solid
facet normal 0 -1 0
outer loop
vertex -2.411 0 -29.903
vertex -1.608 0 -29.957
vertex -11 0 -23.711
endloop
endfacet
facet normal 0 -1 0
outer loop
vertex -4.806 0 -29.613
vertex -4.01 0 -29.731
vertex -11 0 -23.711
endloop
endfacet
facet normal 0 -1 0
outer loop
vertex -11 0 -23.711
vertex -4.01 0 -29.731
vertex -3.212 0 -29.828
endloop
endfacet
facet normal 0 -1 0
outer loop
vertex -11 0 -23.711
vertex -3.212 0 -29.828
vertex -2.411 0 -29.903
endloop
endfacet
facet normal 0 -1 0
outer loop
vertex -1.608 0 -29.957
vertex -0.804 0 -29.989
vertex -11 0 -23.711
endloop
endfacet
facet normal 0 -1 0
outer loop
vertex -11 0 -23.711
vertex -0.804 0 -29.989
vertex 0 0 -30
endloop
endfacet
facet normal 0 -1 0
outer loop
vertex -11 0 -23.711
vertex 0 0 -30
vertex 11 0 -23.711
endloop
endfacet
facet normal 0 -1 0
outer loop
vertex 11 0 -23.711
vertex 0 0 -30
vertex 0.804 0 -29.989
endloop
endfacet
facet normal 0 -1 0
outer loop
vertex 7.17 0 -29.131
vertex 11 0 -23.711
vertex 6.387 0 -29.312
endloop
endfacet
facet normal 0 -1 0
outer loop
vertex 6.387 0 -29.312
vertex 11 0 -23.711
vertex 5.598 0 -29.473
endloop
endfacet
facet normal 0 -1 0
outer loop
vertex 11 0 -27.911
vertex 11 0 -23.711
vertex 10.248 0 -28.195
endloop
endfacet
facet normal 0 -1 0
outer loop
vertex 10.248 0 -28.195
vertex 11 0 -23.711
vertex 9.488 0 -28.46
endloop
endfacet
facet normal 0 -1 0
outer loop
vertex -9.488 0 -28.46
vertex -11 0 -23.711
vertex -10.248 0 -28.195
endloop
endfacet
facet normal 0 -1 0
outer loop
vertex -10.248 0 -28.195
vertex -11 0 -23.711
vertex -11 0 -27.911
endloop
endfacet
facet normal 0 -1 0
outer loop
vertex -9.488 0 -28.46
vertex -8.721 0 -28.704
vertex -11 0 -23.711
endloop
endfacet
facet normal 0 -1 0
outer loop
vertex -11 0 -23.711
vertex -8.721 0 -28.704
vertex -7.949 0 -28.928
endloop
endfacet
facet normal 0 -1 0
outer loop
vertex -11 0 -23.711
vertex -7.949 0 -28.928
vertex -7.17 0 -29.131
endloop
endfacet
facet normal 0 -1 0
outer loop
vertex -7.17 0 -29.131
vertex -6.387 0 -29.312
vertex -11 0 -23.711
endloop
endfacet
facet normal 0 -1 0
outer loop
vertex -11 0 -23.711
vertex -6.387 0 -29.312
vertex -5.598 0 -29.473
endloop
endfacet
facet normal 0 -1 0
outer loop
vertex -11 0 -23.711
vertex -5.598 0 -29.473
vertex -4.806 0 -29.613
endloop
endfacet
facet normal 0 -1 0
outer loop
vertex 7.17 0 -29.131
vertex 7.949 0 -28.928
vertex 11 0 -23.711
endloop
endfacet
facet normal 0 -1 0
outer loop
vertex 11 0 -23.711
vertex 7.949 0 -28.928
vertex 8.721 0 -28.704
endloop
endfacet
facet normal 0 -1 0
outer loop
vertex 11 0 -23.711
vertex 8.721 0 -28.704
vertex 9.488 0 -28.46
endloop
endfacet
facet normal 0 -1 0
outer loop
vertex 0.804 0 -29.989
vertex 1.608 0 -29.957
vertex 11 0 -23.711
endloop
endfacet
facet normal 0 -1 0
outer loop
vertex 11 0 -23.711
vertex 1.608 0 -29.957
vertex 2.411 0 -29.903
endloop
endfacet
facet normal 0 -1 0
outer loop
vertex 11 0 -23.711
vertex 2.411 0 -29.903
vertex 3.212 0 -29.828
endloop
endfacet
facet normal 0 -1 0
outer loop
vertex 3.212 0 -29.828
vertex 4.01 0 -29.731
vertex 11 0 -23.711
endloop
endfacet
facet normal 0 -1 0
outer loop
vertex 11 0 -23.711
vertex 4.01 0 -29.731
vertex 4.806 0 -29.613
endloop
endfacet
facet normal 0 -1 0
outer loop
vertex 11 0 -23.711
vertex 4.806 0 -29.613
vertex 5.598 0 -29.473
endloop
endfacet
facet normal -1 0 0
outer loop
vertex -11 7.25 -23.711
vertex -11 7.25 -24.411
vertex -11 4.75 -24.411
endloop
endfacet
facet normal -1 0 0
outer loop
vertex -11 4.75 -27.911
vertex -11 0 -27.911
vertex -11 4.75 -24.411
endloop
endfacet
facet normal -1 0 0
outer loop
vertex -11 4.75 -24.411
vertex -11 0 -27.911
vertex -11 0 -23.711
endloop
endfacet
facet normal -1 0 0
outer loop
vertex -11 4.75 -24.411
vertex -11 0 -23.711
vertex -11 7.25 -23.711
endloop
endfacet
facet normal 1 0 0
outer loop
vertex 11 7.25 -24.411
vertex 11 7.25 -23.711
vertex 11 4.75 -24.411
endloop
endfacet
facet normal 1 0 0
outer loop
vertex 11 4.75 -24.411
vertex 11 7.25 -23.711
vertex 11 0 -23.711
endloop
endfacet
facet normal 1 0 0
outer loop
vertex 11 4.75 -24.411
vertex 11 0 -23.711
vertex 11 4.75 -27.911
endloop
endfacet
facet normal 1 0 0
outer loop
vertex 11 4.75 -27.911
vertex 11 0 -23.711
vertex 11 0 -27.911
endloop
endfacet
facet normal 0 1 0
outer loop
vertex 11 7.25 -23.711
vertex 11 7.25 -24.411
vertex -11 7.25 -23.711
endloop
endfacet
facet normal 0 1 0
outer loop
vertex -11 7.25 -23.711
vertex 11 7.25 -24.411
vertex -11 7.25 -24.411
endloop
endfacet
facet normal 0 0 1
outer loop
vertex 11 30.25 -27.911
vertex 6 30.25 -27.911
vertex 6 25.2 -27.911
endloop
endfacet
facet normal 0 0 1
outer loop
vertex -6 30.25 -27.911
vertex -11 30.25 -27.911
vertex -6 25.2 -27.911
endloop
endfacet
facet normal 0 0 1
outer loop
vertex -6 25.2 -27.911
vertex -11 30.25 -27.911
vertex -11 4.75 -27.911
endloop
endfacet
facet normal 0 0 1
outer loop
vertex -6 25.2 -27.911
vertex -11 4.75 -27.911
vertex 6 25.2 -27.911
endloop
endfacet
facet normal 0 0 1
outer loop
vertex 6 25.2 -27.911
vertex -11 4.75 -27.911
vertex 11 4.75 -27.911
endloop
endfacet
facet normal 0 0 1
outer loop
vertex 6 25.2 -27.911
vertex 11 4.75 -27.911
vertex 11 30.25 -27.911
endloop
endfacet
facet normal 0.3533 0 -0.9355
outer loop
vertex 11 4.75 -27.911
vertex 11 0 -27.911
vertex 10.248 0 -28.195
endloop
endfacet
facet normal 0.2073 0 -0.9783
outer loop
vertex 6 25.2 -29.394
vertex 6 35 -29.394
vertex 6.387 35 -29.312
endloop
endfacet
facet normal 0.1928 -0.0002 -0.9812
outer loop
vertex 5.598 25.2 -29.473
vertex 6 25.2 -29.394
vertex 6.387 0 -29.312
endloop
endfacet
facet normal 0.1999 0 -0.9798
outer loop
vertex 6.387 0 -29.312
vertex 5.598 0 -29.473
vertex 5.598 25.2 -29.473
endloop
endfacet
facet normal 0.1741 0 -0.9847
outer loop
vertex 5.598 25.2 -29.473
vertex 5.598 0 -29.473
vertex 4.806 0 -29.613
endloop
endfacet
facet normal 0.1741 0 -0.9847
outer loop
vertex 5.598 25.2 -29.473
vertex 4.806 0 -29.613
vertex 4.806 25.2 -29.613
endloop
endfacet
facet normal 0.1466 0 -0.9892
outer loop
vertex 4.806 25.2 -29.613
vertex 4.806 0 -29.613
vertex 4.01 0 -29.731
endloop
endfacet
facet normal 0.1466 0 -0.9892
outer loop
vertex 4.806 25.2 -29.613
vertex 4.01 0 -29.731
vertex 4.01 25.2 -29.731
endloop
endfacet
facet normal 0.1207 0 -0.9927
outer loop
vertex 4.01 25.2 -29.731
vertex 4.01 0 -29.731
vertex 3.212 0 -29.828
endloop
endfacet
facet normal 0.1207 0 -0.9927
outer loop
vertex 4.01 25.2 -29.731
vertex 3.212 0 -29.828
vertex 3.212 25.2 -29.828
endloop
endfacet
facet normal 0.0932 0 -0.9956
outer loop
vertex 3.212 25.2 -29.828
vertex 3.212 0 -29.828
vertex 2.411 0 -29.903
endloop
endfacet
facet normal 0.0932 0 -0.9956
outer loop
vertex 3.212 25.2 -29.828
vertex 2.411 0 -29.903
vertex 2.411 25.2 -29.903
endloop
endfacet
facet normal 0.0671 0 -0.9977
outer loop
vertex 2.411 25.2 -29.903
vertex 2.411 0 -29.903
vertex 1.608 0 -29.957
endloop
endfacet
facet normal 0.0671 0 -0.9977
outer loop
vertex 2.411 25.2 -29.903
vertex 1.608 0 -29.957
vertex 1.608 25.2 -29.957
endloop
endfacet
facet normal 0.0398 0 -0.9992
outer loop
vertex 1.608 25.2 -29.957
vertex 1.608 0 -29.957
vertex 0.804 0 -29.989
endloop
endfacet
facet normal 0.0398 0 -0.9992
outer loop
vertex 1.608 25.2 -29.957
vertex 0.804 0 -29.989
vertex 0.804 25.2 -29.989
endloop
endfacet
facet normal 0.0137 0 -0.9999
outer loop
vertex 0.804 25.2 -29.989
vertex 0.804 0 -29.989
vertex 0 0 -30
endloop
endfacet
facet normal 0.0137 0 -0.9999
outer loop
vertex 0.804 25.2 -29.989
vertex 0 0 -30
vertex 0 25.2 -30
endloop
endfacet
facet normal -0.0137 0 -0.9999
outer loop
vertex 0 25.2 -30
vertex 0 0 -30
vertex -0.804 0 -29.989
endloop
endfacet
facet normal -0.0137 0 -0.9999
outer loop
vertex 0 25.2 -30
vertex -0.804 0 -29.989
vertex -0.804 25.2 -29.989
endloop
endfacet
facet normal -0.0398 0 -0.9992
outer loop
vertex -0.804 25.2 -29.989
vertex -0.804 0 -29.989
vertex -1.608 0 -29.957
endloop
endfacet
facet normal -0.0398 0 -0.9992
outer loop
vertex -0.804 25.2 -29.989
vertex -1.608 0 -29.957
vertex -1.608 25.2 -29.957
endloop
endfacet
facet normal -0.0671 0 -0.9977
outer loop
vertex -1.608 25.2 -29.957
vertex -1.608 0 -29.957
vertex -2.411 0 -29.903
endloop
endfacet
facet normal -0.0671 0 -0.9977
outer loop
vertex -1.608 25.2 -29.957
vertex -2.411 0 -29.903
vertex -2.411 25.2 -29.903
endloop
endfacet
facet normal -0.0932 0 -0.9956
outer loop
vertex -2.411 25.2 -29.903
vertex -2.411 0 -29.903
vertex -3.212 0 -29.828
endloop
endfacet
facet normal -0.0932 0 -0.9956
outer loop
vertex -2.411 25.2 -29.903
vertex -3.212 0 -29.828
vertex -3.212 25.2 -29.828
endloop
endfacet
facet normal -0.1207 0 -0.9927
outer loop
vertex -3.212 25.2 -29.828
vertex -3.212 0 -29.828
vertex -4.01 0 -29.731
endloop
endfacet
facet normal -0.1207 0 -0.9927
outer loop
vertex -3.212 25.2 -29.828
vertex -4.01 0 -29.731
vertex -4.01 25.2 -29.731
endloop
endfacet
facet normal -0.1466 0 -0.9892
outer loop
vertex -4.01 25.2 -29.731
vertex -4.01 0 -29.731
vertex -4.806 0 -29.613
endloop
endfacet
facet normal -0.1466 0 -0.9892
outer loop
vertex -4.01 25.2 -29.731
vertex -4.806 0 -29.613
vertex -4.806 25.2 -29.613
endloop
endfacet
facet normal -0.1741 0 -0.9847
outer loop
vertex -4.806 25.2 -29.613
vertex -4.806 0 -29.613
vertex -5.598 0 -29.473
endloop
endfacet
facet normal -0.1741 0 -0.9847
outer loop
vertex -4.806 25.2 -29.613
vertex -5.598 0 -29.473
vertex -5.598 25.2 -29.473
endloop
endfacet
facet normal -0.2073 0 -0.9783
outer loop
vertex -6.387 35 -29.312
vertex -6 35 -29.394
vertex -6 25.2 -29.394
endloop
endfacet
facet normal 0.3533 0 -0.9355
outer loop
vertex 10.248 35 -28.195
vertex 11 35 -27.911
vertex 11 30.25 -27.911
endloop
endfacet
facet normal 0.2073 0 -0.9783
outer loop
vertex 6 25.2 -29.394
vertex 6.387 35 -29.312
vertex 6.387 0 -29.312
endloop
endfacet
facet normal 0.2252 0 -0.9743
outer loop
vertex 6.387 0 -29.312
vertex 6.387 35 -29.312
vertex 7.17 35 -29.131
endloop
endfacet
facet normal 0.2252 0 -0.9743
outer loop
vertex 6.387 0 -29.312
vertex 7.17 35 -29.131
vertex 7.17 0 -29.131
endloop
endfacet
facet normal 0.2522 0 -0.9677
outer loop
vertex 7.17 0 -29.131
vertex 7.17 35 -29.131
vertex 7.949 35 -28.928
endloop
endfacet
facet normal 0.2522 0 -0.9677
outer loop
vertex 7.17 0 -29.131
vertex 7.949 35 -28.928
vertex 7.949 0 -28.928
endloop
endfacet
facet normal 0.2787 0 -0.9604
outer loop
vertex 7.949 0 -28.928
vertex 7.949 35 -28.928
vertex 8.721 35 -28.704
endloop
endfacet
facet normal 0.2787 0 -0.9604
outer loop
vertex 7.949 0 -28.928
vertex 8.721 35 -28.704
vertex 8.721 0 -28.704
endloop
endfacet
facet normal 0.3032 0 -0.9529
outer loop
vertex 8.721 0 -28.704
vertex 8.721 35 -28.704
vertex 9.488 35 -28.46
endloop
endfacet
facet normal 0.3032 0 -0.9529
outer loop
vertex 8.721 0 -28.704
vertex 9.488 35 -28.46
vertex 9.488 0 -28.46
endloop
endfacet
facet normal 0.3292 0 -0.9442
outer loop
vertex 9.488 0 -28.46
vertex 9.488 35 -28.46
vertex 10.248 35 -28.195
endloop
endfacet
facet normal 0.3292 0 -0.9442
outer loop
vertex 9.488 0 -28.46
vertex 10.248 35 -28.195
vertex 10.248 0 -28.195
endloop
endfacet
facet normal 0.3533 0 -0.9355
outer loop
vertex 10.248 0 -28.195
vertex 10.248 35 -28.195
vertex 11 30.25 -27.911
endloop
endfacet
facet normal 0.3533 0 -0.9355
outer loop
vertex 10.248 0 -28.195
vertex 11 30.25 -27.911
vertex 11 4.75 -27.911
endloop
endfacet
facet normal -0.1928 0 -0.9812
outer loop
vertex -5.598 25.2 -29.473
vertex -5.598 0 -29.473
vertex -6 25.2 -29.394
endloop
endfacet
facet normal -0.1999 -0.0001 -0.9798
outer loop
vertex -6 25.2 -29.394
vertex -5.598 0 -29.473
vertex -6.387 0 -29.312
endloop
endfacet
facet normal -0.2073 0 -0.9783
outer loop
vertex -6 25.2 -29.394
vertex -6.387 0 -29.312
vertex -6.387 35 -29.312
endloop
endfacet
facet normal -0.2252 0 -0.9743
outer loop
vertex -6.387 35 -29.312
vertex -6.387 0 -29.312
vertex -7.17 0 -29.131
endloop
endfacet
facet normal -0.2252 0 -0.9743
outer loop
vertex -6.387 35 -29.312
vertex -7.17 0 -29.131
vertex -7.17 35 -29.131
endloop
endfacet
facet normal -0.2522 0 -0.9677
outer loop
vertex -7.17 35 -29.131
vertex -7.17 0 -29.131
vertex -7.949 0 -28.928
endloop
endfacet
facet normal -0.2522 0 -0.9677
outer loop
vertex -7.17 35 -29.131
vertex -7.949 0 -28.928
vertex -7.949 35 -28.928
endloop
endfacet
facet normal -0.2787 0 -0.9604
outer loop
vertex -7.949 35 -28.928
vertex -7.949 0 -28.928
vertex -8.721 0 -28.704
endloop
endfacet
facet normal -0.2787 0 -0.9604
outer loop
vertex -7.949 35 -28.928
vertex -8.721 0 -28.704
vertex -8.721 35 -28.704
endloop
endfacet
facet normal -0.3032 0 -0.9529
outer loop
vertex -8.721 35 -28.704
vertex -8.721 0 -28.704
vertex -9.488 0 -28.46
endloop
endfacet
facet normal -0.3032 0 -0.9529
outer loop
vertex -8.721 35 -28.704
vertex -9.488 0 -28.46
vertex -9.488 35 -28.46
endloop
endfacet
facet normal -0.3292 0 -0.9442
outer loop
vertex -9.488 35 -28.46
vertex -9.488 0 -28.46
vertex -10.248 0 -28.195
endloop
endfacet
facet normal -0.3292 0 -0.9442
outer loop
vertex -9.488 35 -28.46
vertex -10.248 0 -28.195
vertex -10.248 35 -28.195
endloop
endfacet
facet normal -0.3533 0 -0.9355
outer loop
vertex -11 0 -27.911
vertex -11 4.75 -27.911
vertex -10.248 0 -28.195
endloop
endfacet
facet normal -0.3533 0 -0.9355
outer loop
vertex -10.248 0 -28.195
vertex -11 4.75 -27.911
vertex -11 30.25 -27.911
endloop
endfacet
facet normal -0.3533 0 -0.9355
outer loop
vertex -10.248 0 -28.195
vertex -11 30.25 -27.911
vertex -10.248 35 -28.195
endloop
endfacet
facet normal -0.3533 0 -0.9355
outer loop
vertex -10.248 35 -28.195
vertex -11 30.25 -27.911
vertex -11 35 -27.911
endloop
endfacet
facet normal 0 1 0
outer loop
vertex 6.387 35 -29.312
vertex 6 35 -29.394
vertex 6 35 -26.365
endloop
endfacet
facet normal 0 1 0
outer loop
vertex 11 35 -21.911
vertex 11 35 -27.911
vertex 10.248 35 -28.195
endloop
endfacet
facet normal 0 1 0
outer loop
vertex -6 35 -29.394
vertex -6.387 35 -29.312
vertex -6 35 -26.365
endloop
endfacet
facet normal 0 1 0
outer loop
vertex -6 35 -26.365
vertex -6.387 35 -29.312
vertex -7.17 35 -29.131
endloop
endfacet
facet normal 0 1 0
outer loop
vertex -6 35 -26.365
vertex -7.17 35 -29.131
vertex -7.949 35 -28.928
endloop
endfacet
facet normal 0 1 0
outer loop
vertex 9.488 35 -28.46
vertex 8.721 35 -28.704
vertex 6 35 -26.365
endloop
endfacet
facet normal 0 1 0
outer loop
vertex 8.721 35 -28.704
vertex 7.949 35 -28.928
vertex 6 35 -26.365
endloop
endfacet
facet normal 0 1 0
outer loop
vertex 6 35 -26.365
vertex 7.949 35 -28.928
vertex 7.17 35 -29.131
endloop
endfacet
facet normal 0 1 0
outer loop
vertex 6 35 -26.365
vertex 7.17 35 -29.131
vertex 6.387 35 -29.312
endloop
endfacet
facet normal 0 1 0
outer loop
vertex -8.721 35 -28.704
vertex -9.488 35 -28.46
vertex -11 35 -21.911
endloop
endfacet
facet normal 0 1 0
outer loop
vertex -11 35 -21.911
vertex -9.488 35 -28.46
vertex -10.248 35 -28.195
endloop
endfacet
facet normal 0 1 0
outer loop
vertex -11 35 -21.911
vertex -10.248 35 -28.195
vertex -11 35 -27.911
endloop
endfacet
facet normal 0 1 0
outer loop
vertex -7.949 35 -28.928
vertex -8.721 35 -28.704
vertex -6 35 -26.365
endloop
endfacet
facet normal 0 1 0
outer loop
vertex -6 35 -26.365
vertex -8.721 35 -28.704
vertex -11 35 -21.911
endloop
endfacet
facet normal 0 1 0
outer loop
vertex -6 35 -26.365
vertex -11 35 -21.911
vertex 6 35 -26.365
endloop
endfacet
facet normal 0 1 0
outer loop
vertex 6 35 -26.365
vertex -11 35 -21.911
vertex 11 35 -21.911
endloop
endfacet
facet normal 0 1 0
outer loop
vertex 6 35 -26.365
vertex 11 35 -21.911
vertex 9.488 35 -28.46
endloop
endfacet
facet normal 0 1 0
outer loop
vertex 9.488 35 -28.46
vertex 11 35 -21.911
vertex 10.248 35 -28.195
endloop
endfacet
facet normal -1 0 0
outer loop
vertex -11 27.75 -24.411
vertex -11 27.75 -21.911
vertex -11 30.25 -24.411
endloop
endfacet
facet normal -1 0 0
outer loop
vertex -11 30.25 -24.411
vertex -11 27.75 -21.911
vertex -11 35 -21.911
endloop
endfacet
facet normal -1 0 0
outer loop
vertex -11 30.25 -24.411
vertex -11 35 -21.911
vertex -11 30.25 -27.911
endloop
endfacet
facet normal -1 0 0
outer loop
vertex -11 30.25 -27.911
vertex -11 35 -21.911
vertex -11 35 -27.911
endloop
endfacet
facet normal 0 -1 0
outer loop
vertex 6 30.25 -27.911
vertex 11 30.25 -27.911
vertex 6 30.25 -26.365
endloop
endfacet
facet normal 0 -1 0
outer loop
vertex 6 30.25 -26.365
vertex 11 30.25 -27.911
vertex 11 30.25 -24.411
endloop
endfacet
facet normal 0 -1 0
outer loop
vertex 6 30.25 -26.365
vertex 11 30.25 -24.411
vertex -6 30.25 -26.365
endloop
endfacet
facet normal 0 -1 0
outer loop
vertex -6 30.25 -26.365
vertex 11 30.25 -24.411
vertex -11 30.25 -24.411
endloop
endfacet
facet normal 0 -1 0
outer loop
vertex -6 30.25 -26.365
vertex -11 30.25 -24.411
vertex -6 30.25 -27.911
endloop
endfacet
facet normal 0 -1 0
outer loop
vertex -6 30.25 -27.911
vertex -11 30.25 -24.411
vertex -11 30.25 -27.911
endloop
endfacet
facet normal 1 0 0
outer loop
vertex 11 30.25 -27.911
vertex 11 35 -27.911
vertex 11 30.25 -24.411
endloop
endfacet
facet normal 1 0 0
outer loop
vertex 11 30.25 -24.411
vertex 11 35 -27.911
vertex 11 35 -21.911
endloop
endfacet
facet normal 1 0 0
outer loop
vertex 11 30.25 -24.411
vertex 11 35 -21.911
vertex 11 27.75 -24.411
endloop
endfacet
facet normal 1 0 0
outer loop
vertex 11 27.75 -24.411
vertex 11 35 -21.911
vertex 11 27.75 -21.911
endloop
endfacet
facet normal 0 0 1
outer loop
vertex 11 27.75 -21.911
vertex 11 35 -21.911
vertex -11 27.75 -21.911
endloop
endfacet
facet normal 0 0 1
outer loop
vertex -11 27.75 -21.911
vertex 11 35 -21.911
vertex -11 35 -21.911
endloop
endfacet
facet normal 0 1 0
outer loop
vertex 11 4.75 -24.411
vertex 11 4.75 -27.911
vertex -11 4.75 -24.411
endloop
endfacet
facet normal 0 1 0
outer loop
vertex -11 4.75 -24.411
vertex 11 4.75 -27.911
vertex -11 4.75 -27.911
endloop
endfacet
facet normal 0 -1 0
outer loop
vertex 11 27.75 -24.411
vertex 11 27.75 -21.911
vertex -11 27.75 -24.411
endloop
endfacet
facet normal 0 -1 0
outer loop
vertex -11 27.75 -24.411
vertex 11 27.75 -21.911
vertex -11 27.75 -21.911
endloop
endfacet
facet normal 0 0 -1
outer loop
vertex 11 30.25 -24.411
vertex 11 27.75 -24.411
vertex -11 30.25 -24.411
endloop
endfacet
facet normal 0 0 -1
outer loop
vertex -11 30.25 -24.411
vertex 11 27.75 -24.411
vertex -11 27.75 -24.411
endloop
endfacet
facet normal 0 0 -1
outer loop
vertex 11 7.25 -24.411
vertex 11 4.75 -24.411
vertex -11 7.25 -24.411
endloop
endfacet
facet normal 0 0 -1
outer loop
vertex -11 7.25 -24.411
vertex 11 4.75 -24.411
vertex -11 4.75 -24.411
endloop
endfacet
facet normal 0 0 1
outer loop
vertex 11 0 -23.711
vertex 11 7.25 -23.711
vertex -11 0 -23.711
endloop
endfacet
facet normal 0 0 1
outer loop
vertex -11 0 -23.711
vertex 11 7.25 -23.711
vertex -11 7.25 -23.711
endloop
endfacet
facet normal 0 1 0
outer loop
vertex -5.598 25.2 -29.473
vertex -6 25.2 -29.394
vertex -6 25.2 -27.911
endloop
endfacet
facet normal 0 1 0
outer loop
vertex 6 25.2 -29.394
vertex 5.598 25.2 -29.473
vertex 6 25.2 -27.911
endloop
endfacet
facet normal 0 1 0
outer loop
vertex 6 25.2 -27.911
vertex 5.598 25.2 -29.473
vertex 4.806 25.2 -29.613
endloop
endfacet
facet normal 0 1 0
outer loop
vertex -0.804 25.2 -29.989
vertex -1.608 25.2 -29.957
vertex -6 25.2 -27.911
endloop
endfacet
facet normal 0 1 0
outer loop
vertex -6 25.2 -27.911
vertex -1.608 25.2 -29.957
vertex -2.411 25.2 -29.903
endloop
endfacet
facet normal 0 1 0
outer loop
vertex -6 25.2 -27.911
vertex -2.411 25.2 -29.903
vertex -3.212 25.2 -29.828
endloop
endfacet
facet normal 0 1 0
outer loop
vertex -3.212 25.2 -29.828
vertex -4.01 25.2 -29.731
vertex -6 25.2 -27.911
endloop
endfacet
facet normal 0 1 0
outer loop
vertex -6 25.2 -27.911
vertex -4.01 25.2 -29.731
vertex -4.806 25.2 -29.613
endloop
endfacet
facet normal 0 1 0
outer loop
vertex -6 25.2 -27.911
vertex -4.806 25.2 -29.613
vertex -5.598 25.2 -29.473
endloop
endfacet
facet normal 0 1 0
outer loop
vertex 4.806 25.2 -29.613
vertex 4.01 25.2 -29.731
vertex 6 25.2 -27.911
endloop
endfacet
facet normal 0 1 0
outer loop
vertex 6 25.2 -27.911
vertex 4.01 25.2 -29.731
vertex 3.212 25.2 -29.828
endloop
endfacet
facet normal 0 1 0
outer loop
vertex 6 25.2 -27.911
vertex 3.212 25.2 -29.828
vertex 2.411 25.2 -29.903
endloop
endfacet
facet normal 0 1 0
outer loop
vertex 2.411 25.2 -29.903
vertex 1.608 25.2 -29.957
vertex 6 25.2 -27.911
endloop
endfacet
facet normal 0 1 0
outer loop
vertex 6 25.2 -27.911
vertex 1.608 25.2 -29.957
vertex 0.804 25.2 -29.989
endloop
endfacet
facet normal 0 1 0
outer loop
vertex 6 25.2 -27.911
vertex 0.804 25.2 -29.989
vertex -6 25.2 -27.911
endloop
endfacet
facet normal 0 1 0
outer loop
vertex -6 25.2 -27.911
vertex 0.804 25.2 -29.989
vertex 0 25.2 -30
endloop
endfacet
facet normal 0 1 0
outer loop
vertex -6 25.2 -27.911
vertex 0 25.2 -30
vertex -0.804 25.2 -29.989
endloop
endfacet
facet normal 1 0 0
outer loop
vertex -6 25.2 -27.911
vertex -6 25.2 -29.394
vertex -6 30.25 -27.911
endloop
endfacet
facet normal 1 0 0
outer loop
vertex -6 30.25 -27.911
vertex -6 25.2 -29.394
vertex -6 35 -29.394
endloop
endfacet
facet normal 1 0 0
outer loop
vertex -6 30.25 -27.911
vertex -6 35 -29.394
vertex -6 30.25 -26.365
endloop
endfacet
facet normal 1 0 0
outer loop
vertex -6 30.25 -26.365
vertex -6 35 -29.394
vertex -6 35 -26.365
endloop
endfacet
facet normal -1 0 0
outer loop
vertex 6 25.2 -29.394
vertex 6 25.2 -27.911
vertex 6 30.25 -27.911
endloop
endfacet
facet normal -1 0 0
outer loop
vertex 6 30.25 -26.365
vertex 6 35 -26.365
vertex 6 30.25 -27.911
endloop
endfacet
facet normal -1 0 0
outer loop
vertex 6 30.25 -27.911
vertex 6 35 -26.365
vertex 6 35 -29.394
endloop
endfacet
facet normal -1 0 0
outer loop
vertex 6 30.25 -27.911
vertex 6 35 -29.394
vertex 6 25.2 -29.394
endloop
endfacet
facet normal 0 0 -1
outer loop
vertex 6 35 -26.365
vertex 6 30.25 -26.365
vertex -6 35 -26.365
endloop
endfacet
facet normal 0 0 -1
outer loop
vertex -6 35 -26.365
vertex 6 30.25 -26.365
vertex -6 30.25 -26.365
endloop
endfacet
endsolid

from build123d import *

# Parameters (mm, degrees)
BOSS_EXTRUDE1_DEPTH = 35
SKETCH2_W           = 22
SKETCH2_H           = 4.75
BOSS_EXTRUDE2_DEPTH = 6
SKETCH3_W           = 2.5
SKETCH3_H           = 2.5
BOSS_EXTRUDE3_DEPTH = 22
SKETCH4_W           = 22
SKETCH4_H           = 7.25
CUT_EXTRUDE1_DEPTH  = 1.8
SKETCH5_W           = 12
SKETCH5_H           = 5.357838174
CUT_EXTRUDE2_DEPTH  = 9.8


with BuildPart() as part:
    # Sketch1 → Boss-Extrude1 (new body)
    with BuildSketch(Plane(origin=(0, 0, 0), x_dir=(1, 0, 0), z_dir=(0, 1, 0))):
        with BuildLine():
            Line((-11, 27.910571474), (11, 27.910571474))
            ThreePointArc((11, 27.910571474), (0, 30), (-11, 27.910571474))
        make_face()
    extrude(amount=BOSS_EXTRUDE1_DEPTH)

    # Sketch2 → Boss-Extrude2 (add)
    with BuildSketch(Plane.XY.offset(-27.910571474)):
        with Locations((0, 32.625)):
            Rectangle(SKETCH2_W, SKETCH2_H)
        with Locations((0, 2.375)):
            Rectangle(SKETCH2_W, SKETCH2_H)
    extrude(amount=BOSS_EXTRUDE2_DEPTH)

    # Sketch3 → Boss-Extrude3 (add, through all)
    with BuildSketch(Plane.ZY.offset(11)):
        with Locations((-23.160571474, 29)):
            Rectangle(SKETCH3_W, SKETCH3_H)
        with Locations((-23.160571474, 6)):
            Rectangle(SKETCH3_W, SKETCH3_H)
    extrude(amount=-BOSS_EXTRUDE3_DEPTH)

    # Sketch4 → Cut-Extrude1 (cut)
    with BuildSketch(Plane.XY.offset(-21.910571474)):
        with Locations((0, 3.625)):
            Rectangle(SKETCH4_W, SKETCH4_H)
    extrude(amount=-CUT_EXTRUDE1_DEPTH, mode=Mode.SUBTRACT)

    # Sketch5 → Cut-Extrude2 (cut)
    with BuildSketch(Plane(origin=(0, 35, 0), x_dir=(1, 0, 0), z_dir=(0, 1, 0))):
        with Locations((0, 29.043466622)):
            Rectangle(SKETCH5_W, SKETCH5_H)
    extrude(amount=-CUT_EXTRUDE2_DEPTH, mode=Mode.SUBTRACT)


solid = part.part
